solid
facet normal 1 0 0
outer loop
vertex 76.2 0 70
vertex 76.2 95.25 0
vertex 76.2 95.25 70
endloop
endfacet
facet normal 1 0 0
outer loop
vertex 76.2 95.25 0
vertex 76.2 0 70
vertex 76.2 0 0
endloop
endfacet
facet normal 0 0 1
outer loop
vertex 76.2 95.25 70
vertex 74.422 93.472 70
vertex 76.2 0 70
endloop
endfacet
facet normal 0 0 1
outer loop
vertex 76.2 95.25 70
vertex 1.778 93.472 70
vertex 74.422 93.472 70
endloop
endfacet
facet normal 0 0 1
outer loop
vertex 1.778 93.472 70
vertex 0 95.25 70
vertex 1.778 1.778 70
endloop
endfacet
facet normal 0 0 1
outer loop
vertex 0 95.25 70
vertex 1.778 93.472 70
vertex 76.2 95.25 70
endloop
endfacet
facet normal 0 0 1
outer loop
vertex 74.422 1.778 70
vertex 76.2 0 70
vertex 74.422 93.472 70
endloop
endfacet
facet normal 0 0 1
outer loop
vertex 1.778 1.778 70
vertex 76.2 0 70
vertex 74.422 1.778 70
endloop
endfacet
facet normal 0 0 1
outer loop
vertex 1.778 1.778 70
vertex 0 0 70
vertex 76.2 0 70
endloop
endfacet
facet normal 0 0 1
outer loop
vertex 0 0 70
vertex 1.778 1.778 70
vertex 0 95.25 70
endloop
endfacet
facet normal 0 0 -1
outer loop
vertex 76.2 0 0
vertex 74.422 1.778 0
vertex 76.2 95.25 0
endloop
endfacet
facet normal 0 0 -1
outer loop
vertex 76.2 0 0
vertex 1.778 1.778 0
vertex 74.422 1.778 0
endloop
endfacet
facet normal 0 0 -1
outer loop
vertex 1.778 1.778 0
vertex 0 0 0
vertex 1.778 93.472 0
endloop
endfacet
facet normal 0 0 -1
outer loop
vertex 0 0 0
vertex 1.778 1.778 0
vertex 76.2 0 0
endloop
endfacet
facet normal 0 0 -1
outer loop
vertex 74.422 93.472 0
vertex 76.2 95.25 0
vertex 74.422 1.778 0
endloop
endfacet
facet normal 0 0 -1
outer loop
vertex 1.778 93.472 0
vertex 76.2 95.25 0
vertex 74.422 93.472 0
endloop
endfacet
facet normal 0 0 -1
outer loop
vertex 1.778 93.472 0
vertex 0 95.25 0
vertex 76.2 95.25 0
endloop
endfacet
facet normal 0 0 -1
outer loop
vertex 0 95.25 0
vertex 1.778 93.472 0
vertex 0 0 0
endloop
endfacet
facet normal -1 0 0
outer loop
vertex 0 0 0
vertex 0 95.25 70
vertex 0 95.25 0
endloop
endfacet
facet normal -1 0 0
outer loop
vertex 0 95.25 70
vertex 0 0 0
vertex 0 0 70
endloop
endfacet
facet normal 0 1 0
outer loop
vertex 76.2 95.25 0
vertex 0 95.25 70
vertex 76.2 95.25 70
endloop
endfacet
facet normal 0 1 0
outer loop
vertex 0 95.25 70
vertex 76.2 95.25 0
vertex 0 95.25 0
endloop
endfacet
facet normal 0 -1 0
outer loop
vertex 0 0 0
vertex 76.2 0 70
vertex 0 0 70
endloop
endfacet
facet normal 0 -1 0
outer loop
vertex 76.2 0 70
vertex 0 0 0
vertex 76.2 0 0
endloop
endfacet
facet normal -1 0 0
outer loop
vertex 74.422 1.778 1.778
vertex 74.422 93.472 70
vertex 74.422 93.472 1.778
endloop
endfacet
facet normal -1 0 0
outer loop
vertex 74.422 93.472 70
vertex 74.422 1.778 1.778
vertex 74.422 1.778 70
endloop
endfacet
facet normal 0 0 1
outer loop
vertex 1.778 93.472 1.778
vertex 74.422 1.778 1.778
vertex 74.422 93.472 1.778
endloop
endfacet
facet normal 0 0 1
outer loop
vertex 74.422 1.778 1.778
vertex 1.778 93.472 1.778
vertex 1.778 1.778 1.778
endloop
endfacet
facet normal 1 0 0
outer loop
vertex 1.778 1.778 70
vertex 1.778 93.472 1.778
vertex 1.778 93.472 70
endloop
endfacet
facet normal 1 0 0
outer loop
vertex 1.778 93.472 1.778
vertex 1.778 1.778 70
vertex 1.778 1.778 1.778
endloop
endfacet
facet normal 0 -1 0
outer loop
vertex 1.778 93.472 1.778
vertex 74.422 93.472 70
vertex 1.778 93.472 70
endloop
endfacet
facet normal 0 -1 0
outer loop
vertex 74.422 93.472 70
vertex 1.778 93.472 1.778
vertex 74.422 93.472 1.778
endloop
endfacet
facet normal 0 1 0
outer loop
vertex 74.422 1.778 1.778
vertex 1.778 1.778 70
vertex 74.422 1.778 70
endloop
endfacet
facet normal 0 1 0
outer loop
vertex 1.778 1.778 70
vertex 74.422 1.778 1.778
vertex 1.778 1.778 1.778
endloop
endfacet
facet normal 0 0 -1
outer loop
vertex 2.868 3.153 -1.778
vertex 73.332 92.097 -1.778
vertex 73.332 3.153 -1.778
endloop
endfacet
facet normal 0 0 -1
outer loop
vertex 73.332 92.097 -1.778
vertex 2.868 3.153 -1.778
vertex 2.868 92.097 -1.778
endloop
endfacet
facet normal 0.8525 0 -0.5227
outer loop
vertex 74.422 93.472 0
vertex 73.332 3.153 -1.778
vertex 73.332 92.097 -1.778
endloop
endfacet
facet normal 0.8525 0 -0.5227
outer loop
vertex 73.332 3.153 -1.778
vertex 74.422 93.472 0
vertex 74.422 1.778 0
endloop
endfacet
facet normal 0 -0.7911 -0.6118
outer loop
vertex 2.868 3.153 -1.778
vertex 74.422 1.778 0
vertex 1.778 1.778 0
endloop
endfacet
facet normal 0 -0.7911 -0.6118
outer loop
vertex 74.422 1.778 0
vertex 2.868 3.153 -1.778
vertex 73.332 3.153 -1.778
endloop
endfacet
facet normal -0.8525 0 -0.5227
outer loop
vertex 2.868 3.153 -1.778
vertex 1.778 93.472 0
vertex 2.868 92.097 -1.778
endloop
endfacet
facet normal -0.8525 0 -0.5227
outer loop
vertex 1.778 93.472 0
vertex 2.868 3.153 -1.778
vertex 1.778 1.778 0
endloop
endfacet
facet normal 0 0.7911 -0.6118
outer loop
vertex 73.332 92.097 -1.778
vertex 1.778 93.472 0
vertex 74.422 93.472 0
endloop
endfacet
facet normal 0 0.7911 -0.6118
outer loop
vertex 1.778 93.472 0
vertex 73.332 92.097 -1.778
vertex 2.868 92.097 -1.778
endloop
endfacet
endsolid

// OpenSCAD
module container(
    width,
    depth,
    height,
    wallWidth
){

    difference(){
        cube([width, depth, height]);
        translate([
            wallWidth,
            wallWidth,  
            wallWidth]
        )cube(
          [
            width - 2 * wallWidth,
            depth - 2 * wallWidth,
            height
          ]
        );
    }
}

function inchToMm(inches) = inches * 25.4;

width = inchToMm(3.0);
depth = inchToMm(3.75);
height = 70;
wallWidth = inchToMm(0.07);

container(
    width,
    depth,
    height,
    wallWidth
);

scale = 0.985;
/*
translate([
    wallWidth * scale,
    wallWidth * scale,
    -wallWidth]
)cube([
    width - 2 * wallWidth,
    depth - 2 * wallWidth,
    wallWidth
]);*/

bottomWidth = (width - 2 * wallWidth);

bottomDepth = (depth - 2 * wallWidth);

translate([
    wallWidth,
    wallWidth,
    -wallWidth]
)polyhedron(
  [
  [ bottomWidth * (1-scale),
    bottomDepth * (1-scale),
    0
  ],  //0
  [ bottomWidth * scale,  bottomDepth * (1-scale),  0 ],  //1
  [ bottomWidth * scale,  bottomDepth * scale,  0 ],  //2
  [  bottomWidth * (1-scale),  bottomDepth * scale,  0 ],  //3
  [  0,  0,  wallWidth ],  //4
  [ bottomWidth,  0,  wallWidth ],  //5
  [ bottomWidth,  bottomDepth,  wallWidth ],  //6
  [  0,  bottomDepth,  wallWidth ]],
  
  [[0,1,2,3],  // bottom
  [4,5,1,0],  // front
  [7,6,5,4],  // top
  [5,6,2,1],  // right
  [6,7,3,2],  // back
  [7,4,0,3]]
 );
